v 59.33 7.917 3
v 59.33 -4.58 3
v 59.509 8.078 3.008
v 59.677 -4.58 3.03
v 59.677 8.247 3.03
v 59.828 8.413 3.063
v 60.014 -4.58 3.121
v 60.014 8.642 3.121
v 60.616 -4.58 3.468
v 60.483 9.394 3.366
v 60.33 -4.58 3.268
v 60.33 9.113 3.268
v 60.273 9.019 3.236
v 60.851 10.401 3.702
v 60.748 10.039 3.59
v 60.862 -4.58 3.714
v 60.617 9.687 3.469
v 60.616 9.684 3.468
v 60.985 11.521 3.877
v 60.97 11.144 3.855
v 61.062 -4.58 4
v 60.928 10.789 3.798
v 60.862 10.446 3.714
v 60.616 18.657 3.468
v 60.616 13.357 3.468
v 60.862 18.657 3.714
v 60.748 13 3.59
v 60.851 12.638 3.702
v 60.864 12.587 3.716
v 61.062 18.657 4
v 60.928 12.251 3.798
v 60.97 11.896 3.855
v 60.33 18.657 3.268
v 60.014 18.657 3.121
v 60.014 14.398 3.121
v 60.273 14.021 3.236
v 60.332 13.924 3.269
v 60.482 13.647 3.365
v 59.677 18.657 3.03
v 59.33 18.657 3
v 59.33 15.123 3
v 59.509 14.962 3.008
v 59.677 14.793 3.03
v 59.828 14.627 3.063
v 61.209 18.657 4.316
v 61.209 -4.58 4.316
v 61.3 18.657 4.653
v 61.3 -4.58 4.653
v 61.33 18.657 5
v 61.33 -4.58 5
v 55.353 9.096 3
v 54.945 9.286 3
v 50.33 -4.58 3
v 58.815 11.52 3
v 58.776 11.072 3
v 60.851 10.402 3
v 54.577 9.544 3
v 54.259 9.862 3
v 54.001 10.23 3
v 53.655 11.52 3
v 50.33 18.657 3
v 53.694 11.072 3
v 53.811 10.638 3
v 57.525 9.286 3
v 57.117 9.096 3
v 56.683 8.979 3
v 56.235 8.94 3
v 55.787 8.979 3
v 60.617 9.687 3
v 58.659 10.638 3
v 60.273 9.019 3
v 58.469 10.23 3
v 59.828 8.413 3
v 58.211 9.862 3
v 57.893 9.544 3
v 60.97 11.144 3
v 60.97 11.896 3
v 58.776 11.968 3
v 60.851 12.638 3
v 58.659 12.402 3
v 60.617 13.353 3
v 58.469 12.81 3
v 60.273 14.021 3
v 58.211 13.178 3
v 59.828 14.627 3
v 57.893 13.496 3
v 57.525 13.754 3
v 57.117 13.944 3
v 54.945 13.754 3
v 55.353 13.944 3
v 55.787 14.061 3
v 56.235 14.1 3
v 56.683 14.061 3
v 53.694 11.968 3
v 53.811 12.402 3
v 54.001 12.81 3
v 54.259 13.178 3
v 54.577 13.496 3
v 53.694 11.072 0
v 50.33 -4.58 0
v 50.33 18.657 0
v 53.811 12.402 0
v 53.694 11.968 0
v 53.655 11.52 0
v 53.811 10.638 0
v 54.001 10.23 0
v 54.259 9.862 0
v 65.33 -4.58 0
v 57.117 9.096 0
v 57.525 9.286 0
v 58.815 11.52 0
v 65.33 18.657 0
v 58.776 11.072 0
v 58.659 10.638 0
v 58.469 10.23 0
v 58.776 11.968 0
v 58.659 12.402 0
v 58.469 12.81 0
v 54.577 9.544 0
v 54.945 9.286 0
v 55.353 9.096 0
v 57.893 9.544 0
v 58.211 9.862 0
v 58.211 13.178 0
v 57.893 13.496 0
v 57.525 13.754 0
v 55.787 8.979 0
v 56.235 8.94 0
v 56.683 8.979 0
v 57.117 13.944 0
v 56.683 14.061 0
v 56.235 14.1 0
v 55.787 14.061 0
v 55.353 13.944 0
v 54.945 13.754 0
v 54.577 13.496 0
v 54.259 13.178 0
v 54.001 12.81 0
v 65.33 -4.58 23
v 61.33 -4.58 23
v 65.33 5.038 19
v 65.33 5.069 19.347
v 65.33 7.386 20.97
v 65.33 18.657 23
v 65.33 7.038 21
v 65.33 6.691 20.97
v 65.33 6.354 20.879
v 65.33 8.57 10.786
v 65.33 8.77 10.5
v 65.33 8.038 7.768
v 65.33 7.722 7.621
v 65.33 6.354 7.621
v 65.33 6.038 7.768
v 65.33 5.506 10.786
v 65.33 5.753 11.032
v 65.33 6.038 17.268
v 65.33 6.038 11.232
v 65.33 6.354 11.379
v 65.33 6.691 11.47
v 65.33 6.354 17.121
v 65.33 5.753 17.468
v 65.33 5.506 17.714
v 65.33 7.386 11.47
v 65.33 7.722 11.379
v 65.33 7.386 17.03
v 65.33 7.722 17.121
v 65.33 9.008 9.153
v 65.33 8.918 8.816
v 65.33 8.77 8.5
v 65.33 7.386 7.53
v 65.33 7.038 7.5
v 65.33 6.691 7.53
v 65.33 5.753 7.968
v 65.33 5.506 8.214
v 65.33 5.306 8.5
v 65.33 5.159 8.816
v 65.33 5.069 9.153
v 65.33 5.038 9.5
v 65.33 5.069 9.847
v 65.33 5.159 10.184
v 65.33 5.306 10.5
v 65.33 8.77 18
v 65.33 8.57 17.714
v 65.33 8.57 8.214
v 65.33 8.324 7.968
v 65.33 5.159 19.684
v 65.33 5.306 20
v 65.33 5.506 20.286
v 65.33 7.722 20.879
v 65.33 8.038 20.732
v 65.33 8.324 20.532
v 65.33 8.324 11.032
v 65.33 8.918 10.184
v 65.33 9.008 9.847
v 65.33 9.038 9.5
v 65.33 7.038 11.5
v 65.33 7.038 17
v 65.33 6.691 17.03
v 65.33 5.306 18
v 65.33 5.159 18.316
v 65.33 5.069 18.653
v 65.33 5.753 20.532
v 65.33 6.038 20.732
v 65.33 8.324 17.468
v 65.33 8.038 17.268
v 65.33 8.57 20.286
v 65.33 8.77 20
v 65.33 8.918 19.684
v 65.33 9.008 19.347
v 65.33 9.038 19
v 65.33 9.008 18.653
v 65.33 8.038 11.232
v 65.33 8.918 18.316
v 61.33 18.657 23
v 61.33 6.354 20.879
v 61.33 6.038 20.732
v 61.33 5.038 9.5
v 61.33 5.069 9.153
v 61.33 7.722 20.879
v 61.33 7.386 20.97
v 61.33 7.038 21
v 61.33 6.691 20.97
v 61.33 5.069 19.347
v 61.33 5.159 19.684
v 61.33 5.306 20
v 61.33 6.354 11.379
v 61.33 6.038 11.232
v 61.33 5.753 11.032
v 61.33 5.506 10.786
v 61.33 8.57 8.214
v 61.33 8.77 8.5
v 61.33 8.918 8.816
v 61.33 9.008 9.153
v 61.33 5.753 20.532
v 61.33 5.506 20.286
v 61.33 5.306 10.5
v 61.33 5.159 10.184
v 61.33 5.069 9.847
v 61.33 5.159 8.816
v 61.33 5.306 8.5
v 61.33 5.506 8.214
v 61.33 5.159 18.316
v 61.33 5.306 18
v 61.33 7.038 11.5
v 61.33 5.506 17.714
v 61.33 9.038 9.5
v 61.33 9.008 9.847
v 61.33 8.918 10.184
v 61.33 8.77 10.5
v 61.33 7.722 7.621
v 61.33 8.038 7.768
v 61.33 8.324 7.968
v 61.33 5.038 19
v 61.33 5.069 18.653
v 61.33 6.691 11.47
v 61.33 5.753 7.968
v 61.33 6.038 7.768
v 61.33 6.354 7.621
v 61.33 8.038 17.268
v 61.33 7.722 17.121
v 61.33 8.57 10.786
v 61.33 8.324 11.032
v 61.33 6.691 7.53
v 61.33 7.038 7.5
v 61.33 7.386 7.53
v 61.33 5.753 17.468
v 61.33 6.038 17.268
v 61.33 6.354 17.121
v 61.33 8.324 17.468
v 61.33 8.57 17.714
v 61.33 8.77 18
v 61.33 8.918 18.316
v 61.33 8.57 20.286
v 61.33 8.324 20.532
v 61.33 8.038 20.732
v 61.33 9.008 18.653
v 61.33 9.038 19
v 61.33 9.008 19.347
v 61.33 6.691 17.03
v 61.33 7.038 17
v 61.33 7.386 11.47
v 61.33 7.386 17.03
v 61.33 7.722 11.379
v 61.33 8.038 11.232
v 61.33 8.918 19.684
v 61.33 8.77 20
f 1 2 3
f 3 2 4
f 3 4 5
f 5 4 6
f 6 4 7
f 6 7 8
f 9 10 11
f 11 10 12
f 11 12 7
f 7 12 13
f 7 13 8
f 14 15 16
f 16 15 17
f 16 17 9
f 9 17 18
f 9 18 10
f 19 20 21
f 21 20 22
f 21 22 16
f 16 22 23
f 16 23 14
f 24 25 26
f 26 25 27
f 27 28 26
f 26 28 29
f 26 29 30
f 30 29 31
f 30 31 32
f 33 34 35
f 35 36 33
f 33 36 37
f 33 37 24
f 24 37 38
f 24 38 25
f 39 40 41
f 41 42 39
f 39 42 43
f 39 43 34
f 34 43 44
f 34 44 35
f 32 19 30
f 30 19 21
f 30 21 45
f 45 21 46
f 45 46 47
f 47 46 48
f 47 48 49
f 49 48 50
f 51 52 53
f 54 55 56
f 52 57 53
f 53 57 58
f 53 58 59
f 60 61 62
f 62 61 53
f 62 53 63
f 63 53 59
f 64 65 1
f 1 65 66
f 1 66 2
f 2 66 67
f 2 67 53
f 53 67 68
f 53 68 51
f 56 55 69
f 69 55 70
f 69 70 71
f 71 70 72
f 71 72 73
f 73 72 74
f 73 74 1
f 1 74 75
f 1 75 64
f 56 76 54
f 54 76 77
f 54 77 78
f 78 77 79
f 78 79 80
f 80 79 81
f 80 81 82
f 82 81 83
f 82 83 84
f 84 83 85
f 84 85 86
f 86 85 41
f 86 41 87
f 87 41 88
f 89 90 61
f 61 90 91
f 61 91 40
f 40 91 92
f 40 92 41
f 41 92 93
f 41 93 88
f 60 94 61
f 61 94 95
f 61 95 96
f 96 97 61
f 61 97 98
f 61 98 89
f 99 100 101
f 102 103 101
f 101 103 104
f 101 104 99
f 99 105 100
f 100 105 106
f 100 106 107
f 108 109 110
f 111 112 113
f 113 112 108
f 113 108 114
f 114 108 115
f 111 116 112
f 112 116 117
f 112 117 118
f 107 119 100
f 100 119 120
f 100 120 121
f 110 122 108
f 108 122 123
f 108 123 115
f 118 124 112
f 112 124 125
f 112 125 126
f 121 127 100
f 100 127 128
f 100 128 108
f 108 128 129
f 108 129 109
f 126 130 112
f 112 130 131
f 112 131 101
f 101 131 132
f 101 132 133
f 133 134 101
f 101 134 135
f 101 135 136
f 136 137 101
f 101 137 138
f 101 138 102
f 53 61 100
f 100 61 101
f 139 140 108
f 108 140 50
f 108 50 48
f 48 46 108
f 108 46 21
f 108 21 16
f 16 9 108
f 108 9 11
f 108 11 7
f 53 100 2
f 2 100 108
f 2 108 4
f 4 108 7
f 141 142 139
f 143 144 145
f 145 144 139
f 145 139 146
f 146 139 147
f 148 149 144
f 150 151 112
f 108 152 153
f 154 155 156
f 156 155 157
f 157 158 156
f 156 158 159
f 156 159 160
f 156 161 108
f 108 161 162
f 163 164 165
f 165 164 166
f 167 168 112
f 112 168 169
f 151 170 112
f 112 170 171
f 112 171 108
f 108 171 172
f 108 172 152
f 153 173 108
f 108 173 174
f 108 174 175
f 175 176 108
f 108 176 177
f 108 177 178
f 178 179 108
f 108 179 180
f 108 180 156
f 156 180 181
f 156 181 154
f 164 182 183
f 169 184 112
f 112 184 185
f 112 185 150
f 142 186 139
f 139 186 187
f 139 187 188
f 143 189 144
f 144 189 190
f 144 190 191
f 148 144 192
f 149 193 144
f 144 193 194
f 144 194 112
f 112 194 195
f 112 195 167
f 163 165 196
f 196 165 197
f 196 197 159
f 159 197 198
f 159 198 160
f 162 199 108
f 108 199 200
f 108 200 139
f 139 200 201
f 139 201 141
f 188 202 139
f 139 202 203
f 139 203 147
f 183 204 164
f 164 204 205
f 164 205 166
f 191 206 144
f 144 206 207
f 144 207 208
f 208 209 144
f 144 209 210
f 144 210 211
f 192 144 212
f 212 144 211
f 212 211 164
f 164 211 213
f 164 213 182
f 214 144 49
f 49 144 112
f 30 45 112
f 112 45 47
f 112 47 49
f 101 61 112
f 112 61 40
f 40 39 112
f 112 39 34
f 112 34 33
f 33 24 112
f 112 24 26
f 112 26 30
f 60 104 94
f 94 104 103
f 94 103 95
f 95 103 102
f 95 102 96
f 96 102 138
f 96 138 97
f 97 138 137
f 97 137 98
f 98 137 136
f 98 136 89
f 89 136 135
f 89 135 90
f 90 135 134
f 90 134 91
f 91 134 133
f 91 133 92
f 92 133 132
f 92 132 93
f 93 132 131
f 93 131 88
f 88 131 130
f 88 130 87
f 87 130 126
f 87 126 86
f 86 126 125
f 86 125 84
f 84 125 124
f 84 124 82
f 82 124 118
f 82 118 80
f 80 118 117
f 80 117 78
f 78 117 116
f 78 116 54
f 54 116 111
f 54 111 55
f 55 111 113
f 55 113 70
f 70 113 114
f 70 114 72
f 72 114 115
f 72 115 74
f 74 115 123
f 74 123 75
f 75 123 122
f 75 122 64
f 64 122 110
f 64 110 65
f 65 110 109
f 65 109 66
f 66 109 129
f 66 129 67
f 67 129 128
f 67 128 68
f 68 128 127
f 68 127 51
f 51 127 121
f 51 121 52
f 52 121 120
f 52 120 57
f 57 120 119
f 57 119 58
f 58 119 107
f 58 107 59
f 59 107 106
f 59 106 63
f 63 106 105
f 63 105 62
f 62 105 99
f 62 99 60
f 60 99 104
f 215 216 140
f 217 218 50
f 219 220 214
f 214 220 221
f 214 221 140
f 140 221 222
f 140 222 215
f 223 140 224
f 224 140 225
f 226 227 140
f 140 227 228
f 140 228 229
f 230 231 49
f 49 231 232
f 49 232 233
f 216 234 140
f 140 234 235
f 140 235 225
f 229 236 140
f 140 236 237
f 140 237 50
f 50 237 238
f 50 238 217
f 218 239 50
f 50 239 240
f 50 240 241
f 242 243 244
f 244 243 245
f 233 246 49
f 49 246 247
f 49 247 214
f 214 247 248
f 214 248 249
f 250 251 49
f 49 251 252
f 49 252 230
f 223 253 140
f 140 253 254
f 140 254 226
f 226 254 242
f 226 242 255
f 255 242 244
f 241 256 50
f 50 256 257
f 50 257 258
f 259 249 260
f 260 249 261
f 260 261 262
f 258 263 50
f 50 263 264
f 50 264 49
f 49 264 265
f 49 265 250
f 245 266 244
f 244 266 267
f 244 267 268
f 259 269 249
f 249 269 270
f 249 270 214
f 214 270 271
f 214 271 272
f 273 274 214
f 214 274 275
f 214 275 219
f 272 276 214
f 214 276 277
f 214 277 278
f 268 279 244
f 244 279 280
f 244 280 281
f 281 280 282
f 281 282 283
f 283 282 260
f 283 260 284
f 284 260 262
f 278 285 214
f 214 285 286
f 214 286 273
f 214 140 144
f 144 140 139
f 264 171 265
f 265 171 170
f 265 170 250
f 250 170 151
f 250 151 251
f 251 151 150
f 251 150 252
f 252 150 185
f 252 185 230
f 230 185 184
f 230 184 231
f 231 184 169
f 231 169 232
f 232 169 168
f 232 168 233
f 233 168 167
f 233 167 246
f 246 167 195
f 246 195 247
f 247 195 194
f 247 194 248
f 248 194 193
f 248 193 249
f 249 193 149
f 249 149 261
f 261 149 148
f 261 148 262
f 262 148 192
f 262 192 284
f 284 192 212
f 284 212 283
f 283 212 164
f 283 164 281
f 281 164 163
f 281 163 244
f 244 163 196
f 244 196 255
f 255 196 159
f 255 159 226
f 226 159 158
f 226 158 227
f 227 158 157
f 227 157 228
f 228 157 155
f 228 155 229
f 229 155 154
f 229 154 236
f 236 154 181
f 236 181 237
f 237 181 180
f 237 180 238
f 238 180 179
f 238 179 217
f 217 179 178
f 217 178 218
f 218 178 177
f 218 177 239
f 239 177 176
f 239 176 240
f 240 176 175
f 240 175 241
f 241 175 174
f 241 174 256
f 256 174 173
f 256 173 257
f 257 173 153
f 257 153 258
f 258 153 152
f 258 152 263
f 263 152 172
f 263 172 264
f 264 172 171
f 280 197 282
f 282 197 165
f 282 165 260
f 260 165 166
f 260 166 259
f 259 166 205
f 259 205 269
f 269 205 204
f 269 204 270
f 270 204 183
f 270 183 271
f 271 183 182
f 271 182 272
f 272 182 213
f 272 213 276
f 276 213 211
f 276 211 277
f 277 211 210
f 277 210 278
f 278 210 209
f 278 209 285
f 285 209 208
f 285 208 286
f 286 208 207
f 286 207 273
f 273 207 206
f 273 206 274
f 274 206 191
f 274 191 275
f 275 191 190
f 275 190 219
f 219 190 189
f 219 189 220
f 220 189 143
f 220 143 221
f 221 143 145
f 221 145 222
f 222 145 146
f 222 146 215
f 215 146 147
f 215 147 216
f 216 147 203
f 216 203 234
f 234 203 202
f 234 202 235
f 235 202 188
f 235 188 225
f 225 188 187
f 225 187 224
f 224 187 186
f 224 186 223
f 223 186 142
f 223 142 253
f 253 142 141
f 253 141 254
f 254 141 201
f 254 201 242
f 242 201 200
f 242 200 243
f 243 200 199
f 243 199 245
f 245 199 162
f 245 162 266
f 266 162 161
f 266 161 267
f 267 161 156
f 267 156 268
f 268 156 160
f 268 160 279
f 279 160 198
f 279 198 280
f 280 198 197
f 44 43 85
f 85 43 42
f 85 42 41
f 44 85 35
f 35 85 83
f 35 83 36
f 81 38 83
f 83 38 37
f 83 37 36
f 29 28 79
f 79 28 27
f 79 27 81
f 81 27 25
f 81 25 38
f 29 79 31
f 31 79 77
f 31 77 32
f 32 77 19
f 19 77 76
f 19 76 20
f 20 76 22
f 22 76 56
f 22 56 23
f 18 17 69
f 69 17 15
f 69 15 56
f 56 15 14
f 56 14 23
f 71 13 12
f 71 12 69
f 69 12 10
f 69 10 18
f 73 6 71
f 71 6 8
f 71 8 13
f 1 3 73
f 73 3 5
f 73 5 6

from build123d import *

# Parameters (mm, degrees)
SKETCH1_W           = 15
SKETCH1_H           = 23.236534363
SKETCH1_R           = 2.58
BOSS_EXTRUDE1_DEPTH = 3
SKETCH2_W           = 4
SKETCH2_H           = 23.236534363
BOSS_EXTRUDE2_DEPTH = 20
SKETCH3_R           = 2
CUT_EXTRUDE1_DEPTH  = 4
FILLET1_R           = 2
SKETCH4_R           = 4.75
CUT_EXTRUDE2_DEPTH  = 4


with BuildPart() as part:
    # Sketch1 → Boss-Extrude1 (new body)
    with BuildSketch(Plane.XY):
        with Locations((57.83, 7.038267182)):
            Rectangle(SKETCH1_W, SKETCH1_H)
        with Locations((56.235, 11.52)):
            Circle(SKETCH1_R, mode=Mode.SUBTRACT)
    extrude(amount=BOSS_EXTRUDE1_DEPTH)

    # Sketch2 → Boss-Extrude2 (add)
    with BuildSketch(Plane.XY.offset(3)):
        with Locations((63.33, 7.038267182)):
            Rectangle(SKETCH2_W, SKETCH2_H)
    extrude(amount=BOSS_EXTRUDE2_DEPTH)

    # Sketch3 → Cut-Extrude1 (cut)
    with BuildSketch(Plane(origin=(65.33, 0, 0), x_dir=(0, 0, -1), z_dir=(1, 0, 0))):
        with Locations((-19, 7.038267182)):
            Circle(SKETCH3_R)
        with Locations((-9.5, 7.038267182)):
            Circle(SKETCH3_R)
    extrude(amount=-CUT_EXTRUDE1_DEPTH, mode=Mode.SUBTRACT)

    # Fillet1
    fillet1_edges = [part.edges().sort_by_distance(p)[0] for p in [
        (61.33, 7.038267182, 3),
    ]]
    fillet(fillet1_edges, radius=FILLET1_R)

    # Sketch4 → Cut-Extrude2 (cut)
    with BuildSketch(Plane.XY.offset(3)):
        with Locations((56.235, 11.52)):
            Circle(SKETCH4_R)
    extrude(amount=CUT_EXTRUDE2_DEPTH, mode=Mode.SUBTRACT)


solid = part.part
